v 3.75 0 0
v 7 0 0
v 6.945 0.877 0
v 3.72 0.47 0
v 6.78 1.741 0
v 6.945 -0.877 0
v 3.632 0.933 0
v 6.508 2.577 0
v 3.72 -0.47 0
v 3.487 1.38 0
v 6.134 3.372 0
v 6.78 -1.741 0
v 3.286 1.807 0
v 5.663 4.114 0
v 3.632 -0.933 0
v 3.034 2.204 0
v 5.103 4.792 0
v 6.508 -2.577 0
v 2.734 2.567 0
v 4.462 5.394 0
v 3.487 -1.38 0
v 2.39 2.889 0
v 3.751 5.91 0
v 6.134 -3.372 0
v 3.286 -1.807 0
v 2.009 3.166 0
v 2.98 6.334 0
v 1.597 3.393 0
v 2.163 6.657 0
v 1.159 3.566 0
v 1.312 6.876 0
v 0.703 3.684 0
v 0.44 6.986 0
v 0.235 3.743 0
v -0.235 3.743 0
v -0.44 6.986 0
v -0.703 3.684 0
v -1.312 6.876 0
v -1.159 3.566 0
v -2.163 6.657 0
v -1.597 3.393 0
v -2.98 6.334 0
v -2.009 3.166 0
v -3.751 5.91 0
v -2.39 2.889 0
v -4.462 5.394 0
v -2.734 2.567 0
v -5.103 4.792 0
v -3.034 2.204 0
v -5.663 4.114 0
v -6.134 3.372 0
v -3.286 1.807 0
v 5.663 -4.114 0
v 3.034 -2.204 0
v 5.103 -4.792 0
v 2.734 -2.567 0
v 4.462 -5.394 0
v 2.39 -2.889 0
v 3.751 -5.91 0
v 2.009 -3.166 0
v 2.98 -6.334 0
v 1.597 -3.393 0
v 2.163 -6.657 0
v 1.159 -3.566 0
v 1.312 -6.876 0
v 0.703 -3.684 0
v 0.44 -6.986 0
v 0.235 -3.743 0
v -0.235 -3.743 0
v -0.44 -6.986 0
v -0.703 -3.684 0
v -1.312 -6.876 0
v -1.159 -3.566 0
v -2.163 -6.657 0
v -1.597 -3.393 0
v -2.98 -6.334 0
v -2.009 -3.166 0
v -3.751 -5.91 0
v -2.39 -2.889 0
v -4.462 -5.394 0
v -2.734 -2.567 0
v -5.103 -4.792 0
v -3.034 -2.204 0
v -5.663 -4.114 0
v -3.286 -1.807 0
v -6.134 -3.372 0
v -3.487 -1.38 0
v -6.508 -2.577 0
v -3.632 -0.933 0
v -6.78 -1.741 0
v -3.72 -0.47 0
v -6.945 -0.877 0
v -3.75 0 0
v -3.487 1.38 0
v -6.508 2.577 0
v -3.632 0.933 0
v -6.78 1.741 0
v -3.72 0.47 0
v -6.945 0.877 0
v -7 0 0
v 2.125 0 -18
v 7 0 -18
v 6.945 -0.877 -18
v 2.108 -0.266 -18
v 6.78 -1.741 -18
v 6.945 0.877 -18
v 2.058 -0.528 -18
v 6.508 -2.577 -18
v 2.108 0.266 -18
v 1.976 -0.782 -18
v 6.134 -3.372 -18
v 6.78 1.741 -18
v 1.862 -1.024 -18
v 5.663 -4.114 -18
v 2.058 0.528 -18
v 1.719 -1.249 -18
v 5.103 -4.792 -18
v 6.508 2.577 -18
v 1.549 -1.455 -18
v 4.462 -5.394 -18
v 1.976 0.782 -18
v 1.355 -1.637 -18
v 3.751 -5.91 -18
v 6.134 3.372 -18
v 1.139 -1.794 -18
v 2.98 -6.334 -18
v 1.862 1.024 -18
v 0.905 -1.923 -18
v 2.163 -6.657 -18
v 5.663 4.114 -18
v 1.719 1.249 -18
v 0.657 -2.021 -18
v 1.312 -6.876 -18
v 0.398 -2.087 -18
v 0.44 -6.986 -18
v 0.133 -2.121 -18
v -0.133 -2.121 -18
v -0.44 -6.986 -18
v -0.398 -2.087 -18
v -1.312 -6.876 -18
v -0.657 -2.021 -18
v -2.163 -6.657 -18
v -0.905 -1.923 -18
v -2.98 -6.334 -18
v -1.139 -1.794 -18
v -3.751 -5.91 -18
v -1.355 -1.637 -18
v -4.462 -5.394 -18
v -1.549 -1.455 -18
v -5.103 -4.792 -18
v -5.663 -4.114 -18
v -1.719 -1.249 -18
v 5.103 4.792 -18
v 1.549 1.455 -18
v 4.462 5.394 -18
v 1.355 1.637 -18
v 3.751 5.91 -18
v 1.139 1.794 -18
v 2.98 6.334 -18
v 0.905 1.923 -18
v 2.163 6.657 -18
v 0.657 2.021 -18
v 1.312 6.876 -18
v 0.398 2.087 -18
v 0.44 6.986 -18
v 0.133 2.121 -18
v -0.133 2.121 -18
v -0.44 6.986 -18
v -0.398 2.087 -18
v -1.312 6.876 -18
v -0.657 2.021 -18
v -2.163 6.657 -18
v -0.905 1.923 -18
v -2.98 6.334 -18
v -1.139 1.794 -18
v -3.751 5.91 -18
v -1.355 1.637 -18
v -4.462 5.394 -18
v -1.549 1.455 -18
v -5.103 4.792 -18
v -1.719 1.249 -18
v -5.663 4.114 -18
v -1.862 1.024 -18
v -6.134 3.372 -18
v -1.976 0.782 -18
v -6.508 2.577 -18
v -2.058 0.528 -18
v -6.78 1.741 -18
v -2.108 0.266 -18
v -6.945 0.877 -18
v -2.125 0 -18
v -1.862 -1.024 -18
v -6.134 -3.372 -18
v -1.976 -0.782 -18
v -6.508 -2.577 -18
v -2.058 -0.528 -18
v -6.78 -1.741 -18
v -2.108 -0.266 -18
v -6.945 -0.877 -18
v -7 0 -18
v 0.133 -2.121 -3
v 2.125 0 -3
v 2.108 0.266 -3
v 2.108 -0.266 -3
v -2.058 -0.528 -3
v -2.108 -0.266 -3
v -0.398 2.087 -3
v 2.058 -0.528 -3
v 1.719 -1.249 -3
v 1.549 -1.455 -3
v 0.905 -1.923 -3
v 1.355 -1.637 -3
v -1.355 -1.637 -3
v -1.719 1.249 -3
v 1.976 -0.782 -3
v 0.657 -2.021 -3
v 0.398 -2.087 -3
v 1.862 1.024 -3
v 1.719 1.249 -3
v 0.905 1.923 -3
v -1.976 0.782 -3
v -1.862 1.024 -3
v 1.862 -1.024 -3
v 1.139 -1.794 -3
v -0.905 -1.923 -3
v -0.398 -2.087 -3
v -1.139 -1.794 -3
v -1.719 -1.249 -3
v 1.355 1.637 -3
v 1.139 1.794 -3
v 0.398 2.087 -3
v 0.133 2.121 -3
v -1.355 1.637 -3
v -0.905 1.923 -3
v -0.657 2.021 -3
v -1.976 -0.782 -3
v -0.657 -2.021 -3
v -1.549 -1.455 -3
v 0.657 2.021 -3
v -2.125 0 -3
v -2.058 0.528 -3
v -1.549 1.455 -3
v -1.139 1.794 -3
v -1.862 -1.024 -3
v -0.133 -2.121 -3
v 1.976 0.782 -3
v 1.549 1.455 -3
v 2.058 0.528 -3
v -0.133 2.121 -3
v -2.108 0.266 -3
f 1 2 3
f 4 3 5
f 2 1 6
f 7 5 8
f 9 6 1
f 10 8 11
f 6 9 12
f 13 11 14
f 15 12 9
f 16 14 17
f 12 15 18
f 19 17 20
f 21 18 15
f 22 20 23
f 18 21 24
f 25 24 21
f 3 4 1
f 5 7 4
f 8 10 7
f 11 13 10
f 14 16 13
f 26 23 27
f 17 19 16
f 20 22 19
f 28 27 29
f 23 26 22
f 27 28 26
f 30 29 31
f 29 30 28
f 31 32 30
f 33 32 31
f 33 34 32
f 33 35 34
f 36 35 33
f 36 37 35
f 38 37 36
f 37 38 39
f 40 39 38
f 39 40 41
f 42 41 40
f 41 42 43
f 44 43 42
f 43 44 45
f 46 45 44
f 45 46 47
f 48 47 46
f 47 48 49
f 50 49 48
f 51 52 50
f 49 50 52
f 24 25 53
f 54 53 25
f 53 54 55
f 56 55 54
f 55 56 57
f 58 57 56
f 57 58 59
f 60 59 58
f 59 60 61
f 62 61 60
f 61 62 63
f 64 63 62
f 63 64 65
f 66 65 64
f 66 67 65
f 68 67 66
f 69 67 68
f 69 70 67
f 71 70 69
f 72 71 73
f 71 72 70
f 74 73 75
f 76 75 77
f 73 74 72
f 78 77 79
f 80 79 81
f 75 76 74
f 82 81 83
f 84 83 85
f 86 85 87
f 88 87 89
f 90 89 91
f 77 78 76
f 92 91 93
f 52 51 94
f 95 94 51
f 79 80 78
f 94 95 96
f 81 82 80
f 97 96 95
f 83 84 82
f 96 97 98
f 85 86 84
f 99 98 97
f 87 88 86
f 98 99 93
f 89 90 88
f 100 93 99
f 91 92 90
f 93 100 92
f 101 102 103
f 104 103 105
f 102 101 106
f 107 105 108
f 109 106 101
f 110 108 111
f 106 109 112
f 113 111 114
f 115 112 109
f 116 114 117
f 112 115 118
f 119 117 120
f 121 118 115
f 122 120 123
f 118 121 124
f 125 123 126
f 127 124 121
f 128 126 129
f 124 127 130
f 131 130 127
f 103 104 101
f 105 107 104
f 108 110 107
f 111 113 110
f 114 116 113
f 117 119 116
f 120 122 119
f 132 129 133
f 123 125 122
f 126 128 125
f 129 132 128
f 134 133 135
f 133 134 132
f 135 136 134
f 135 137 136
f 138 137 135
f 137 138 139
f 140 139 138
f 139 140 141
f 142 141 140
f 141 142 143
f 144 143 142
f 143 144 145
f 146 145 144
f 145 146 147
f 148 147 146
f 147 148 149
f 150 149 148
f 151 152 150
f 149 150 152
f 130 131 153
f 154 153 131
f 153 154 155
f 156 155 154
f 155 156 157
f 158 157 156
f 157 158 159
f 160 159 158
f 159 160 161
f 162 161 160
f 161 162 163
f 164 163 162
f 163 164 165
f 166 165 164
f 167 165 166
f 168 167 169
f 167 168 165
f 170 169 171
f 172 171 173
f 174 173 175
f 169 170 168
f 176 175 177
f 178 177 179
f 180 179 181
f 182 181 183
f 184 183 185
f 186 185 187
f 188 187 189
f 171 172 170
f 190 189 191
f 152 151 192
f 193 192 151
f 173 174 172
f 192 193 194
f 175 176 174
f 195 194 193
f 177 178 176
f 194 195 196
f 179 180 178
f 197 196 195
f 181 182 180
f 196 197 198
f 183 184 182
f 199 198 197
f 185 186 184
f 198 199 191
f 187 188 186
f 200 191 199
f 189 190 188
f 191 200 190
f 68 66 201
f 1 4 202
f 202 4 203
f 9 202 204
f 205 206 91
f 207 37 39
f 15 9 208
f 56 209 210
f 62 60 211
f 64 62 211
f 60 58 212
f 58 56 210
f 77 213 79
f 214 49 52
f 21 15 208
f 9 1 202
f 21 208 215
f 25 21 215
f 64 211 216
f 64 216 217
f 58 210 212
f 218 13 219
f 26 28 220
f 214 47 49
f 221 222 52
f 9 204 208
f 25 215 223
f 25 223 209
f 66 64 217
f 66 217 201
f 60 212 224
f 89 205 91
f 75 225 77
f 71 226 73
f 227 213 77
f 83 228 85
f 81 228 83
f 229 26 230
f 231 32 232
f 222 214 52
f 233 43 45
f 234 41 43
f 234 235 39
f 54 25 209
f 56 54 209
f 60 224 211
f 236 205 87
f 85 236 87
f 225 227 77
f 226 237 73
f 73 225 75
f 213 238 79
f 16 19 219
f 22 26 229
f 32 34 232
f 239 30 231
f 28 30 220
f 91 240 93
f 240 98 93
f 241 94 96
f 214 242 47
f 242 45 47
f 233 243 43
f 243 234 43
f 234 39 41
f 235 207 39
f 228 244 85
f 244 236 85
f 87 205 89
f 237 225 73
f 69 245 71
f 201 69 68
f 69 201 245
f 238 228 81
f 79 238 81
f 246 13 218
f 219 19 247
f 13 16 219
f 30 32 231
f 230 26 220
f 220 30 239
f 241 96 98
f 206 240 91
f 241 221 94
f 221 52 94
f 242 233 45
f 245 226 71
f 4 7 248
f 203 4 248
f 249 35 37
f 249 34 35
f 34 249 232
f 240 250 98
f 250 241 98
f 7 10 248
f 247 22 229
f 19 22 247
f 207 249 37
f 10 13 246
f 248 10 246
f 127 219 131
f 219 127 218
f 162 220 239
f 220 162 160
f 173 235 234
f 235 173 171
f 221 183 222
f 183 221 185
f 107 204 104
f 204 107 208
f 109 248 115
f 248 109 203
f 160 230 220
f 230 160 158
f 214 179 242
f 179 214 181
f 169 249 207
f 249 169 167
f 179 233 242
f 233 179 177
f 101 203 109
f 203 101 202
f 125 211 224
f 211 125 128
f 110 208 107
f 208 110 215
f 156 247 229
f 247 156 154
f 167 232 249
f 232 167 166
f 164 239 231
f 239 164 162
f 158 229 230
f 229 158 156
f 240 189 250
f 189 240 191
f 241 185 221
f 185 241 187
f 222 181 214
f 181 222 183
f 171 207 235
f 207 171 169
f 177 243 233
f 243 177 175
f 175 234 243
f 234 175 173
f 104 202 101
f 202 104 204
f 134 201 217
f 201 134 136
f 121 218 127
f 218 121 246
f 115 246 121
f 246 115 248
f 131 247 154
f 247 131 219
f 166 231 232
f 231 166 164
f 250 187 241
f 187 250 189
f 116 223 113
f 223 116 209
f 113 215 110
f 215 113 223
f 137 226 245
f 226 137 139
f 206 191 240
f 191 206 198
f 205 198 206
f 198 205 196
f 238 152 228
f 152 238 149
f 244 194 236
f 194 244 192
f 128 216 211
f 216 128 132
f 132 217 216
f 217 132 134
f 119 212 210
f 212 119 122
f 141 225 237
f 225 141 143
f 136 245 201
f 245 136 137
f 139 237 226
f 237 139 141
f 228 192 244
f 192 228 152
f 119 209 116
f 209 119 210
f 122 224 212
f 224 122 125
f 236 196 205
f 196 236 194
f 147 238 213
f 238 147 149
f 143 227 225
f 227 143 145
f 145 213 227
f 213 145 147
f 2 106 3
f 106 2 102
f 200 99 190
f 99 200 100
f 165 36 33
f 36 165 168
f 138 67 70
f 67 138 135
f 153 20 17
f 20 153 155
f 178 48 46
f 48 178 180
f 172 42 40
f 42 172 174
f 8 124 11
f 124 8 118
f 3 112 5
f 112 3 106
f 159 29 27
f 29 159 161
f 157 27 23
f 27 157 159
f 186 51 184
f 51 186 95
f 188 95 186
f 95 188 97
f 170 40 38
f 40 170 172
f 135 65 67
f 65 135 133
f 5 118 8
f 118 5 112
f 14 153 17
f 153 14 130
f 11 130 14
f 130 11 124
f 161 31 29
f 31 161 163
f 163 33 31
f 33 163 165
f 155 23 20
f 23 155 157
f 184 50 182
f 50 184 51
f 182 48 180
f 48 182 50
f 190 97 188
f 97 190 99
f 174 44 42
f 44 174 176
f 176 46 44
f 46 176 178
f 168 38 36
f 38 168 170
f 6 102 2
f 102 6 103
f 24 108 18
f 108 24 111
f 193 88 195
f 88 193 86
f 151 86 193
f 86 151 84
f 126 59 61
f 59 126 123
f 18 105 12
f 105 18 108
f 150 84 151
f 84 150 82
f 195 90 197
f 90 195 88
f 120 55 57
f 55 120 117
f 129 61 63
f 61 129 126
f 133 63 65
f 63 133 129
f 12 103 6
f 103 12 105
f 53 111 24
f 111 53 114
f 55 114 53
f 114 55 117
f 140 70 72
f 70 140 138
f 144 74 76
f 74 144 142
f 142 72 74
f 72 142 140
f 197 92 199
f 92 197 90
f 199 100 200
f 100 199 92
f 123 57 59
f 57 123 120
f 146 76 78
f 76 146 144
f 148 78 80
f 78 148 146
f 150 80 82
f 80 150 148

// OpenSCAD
$fn = 50;


difference() {
	union() {
		translate(v = [0, 0, -18.0000000000]) {
			cylinder(h = 18, r = 7.0000000000);
		}
		cylinder(h = 0, r = 10.0000000000);
	}
	union() {
		translate(v = [0, 0, 0]) {
			rotate(a = [0, 0, 0]) {
				difference() {
					union() {
						#translate(v = [0, 0, -18.0000000000]) {
							cylinder(h = 18, r = 2.0000000000);
						}
						#translate(v = [0, 0, -3]) {
							cylinder(h = 3, r = 7.0000000000, r1 = 2.1250000000, r2 = 3.7500000000);
						}
						#translate(v = [0, 0, -18.0000000000]) {
							cylinder(h = 18, r = 2.1250000000);
						}
						#translate(v = [0, 0, -18.0000000000]) {
							cylinder(h = 18, r = 2.0000000000);
						}
					}
					union();
				}
			}
		}
	}
}
